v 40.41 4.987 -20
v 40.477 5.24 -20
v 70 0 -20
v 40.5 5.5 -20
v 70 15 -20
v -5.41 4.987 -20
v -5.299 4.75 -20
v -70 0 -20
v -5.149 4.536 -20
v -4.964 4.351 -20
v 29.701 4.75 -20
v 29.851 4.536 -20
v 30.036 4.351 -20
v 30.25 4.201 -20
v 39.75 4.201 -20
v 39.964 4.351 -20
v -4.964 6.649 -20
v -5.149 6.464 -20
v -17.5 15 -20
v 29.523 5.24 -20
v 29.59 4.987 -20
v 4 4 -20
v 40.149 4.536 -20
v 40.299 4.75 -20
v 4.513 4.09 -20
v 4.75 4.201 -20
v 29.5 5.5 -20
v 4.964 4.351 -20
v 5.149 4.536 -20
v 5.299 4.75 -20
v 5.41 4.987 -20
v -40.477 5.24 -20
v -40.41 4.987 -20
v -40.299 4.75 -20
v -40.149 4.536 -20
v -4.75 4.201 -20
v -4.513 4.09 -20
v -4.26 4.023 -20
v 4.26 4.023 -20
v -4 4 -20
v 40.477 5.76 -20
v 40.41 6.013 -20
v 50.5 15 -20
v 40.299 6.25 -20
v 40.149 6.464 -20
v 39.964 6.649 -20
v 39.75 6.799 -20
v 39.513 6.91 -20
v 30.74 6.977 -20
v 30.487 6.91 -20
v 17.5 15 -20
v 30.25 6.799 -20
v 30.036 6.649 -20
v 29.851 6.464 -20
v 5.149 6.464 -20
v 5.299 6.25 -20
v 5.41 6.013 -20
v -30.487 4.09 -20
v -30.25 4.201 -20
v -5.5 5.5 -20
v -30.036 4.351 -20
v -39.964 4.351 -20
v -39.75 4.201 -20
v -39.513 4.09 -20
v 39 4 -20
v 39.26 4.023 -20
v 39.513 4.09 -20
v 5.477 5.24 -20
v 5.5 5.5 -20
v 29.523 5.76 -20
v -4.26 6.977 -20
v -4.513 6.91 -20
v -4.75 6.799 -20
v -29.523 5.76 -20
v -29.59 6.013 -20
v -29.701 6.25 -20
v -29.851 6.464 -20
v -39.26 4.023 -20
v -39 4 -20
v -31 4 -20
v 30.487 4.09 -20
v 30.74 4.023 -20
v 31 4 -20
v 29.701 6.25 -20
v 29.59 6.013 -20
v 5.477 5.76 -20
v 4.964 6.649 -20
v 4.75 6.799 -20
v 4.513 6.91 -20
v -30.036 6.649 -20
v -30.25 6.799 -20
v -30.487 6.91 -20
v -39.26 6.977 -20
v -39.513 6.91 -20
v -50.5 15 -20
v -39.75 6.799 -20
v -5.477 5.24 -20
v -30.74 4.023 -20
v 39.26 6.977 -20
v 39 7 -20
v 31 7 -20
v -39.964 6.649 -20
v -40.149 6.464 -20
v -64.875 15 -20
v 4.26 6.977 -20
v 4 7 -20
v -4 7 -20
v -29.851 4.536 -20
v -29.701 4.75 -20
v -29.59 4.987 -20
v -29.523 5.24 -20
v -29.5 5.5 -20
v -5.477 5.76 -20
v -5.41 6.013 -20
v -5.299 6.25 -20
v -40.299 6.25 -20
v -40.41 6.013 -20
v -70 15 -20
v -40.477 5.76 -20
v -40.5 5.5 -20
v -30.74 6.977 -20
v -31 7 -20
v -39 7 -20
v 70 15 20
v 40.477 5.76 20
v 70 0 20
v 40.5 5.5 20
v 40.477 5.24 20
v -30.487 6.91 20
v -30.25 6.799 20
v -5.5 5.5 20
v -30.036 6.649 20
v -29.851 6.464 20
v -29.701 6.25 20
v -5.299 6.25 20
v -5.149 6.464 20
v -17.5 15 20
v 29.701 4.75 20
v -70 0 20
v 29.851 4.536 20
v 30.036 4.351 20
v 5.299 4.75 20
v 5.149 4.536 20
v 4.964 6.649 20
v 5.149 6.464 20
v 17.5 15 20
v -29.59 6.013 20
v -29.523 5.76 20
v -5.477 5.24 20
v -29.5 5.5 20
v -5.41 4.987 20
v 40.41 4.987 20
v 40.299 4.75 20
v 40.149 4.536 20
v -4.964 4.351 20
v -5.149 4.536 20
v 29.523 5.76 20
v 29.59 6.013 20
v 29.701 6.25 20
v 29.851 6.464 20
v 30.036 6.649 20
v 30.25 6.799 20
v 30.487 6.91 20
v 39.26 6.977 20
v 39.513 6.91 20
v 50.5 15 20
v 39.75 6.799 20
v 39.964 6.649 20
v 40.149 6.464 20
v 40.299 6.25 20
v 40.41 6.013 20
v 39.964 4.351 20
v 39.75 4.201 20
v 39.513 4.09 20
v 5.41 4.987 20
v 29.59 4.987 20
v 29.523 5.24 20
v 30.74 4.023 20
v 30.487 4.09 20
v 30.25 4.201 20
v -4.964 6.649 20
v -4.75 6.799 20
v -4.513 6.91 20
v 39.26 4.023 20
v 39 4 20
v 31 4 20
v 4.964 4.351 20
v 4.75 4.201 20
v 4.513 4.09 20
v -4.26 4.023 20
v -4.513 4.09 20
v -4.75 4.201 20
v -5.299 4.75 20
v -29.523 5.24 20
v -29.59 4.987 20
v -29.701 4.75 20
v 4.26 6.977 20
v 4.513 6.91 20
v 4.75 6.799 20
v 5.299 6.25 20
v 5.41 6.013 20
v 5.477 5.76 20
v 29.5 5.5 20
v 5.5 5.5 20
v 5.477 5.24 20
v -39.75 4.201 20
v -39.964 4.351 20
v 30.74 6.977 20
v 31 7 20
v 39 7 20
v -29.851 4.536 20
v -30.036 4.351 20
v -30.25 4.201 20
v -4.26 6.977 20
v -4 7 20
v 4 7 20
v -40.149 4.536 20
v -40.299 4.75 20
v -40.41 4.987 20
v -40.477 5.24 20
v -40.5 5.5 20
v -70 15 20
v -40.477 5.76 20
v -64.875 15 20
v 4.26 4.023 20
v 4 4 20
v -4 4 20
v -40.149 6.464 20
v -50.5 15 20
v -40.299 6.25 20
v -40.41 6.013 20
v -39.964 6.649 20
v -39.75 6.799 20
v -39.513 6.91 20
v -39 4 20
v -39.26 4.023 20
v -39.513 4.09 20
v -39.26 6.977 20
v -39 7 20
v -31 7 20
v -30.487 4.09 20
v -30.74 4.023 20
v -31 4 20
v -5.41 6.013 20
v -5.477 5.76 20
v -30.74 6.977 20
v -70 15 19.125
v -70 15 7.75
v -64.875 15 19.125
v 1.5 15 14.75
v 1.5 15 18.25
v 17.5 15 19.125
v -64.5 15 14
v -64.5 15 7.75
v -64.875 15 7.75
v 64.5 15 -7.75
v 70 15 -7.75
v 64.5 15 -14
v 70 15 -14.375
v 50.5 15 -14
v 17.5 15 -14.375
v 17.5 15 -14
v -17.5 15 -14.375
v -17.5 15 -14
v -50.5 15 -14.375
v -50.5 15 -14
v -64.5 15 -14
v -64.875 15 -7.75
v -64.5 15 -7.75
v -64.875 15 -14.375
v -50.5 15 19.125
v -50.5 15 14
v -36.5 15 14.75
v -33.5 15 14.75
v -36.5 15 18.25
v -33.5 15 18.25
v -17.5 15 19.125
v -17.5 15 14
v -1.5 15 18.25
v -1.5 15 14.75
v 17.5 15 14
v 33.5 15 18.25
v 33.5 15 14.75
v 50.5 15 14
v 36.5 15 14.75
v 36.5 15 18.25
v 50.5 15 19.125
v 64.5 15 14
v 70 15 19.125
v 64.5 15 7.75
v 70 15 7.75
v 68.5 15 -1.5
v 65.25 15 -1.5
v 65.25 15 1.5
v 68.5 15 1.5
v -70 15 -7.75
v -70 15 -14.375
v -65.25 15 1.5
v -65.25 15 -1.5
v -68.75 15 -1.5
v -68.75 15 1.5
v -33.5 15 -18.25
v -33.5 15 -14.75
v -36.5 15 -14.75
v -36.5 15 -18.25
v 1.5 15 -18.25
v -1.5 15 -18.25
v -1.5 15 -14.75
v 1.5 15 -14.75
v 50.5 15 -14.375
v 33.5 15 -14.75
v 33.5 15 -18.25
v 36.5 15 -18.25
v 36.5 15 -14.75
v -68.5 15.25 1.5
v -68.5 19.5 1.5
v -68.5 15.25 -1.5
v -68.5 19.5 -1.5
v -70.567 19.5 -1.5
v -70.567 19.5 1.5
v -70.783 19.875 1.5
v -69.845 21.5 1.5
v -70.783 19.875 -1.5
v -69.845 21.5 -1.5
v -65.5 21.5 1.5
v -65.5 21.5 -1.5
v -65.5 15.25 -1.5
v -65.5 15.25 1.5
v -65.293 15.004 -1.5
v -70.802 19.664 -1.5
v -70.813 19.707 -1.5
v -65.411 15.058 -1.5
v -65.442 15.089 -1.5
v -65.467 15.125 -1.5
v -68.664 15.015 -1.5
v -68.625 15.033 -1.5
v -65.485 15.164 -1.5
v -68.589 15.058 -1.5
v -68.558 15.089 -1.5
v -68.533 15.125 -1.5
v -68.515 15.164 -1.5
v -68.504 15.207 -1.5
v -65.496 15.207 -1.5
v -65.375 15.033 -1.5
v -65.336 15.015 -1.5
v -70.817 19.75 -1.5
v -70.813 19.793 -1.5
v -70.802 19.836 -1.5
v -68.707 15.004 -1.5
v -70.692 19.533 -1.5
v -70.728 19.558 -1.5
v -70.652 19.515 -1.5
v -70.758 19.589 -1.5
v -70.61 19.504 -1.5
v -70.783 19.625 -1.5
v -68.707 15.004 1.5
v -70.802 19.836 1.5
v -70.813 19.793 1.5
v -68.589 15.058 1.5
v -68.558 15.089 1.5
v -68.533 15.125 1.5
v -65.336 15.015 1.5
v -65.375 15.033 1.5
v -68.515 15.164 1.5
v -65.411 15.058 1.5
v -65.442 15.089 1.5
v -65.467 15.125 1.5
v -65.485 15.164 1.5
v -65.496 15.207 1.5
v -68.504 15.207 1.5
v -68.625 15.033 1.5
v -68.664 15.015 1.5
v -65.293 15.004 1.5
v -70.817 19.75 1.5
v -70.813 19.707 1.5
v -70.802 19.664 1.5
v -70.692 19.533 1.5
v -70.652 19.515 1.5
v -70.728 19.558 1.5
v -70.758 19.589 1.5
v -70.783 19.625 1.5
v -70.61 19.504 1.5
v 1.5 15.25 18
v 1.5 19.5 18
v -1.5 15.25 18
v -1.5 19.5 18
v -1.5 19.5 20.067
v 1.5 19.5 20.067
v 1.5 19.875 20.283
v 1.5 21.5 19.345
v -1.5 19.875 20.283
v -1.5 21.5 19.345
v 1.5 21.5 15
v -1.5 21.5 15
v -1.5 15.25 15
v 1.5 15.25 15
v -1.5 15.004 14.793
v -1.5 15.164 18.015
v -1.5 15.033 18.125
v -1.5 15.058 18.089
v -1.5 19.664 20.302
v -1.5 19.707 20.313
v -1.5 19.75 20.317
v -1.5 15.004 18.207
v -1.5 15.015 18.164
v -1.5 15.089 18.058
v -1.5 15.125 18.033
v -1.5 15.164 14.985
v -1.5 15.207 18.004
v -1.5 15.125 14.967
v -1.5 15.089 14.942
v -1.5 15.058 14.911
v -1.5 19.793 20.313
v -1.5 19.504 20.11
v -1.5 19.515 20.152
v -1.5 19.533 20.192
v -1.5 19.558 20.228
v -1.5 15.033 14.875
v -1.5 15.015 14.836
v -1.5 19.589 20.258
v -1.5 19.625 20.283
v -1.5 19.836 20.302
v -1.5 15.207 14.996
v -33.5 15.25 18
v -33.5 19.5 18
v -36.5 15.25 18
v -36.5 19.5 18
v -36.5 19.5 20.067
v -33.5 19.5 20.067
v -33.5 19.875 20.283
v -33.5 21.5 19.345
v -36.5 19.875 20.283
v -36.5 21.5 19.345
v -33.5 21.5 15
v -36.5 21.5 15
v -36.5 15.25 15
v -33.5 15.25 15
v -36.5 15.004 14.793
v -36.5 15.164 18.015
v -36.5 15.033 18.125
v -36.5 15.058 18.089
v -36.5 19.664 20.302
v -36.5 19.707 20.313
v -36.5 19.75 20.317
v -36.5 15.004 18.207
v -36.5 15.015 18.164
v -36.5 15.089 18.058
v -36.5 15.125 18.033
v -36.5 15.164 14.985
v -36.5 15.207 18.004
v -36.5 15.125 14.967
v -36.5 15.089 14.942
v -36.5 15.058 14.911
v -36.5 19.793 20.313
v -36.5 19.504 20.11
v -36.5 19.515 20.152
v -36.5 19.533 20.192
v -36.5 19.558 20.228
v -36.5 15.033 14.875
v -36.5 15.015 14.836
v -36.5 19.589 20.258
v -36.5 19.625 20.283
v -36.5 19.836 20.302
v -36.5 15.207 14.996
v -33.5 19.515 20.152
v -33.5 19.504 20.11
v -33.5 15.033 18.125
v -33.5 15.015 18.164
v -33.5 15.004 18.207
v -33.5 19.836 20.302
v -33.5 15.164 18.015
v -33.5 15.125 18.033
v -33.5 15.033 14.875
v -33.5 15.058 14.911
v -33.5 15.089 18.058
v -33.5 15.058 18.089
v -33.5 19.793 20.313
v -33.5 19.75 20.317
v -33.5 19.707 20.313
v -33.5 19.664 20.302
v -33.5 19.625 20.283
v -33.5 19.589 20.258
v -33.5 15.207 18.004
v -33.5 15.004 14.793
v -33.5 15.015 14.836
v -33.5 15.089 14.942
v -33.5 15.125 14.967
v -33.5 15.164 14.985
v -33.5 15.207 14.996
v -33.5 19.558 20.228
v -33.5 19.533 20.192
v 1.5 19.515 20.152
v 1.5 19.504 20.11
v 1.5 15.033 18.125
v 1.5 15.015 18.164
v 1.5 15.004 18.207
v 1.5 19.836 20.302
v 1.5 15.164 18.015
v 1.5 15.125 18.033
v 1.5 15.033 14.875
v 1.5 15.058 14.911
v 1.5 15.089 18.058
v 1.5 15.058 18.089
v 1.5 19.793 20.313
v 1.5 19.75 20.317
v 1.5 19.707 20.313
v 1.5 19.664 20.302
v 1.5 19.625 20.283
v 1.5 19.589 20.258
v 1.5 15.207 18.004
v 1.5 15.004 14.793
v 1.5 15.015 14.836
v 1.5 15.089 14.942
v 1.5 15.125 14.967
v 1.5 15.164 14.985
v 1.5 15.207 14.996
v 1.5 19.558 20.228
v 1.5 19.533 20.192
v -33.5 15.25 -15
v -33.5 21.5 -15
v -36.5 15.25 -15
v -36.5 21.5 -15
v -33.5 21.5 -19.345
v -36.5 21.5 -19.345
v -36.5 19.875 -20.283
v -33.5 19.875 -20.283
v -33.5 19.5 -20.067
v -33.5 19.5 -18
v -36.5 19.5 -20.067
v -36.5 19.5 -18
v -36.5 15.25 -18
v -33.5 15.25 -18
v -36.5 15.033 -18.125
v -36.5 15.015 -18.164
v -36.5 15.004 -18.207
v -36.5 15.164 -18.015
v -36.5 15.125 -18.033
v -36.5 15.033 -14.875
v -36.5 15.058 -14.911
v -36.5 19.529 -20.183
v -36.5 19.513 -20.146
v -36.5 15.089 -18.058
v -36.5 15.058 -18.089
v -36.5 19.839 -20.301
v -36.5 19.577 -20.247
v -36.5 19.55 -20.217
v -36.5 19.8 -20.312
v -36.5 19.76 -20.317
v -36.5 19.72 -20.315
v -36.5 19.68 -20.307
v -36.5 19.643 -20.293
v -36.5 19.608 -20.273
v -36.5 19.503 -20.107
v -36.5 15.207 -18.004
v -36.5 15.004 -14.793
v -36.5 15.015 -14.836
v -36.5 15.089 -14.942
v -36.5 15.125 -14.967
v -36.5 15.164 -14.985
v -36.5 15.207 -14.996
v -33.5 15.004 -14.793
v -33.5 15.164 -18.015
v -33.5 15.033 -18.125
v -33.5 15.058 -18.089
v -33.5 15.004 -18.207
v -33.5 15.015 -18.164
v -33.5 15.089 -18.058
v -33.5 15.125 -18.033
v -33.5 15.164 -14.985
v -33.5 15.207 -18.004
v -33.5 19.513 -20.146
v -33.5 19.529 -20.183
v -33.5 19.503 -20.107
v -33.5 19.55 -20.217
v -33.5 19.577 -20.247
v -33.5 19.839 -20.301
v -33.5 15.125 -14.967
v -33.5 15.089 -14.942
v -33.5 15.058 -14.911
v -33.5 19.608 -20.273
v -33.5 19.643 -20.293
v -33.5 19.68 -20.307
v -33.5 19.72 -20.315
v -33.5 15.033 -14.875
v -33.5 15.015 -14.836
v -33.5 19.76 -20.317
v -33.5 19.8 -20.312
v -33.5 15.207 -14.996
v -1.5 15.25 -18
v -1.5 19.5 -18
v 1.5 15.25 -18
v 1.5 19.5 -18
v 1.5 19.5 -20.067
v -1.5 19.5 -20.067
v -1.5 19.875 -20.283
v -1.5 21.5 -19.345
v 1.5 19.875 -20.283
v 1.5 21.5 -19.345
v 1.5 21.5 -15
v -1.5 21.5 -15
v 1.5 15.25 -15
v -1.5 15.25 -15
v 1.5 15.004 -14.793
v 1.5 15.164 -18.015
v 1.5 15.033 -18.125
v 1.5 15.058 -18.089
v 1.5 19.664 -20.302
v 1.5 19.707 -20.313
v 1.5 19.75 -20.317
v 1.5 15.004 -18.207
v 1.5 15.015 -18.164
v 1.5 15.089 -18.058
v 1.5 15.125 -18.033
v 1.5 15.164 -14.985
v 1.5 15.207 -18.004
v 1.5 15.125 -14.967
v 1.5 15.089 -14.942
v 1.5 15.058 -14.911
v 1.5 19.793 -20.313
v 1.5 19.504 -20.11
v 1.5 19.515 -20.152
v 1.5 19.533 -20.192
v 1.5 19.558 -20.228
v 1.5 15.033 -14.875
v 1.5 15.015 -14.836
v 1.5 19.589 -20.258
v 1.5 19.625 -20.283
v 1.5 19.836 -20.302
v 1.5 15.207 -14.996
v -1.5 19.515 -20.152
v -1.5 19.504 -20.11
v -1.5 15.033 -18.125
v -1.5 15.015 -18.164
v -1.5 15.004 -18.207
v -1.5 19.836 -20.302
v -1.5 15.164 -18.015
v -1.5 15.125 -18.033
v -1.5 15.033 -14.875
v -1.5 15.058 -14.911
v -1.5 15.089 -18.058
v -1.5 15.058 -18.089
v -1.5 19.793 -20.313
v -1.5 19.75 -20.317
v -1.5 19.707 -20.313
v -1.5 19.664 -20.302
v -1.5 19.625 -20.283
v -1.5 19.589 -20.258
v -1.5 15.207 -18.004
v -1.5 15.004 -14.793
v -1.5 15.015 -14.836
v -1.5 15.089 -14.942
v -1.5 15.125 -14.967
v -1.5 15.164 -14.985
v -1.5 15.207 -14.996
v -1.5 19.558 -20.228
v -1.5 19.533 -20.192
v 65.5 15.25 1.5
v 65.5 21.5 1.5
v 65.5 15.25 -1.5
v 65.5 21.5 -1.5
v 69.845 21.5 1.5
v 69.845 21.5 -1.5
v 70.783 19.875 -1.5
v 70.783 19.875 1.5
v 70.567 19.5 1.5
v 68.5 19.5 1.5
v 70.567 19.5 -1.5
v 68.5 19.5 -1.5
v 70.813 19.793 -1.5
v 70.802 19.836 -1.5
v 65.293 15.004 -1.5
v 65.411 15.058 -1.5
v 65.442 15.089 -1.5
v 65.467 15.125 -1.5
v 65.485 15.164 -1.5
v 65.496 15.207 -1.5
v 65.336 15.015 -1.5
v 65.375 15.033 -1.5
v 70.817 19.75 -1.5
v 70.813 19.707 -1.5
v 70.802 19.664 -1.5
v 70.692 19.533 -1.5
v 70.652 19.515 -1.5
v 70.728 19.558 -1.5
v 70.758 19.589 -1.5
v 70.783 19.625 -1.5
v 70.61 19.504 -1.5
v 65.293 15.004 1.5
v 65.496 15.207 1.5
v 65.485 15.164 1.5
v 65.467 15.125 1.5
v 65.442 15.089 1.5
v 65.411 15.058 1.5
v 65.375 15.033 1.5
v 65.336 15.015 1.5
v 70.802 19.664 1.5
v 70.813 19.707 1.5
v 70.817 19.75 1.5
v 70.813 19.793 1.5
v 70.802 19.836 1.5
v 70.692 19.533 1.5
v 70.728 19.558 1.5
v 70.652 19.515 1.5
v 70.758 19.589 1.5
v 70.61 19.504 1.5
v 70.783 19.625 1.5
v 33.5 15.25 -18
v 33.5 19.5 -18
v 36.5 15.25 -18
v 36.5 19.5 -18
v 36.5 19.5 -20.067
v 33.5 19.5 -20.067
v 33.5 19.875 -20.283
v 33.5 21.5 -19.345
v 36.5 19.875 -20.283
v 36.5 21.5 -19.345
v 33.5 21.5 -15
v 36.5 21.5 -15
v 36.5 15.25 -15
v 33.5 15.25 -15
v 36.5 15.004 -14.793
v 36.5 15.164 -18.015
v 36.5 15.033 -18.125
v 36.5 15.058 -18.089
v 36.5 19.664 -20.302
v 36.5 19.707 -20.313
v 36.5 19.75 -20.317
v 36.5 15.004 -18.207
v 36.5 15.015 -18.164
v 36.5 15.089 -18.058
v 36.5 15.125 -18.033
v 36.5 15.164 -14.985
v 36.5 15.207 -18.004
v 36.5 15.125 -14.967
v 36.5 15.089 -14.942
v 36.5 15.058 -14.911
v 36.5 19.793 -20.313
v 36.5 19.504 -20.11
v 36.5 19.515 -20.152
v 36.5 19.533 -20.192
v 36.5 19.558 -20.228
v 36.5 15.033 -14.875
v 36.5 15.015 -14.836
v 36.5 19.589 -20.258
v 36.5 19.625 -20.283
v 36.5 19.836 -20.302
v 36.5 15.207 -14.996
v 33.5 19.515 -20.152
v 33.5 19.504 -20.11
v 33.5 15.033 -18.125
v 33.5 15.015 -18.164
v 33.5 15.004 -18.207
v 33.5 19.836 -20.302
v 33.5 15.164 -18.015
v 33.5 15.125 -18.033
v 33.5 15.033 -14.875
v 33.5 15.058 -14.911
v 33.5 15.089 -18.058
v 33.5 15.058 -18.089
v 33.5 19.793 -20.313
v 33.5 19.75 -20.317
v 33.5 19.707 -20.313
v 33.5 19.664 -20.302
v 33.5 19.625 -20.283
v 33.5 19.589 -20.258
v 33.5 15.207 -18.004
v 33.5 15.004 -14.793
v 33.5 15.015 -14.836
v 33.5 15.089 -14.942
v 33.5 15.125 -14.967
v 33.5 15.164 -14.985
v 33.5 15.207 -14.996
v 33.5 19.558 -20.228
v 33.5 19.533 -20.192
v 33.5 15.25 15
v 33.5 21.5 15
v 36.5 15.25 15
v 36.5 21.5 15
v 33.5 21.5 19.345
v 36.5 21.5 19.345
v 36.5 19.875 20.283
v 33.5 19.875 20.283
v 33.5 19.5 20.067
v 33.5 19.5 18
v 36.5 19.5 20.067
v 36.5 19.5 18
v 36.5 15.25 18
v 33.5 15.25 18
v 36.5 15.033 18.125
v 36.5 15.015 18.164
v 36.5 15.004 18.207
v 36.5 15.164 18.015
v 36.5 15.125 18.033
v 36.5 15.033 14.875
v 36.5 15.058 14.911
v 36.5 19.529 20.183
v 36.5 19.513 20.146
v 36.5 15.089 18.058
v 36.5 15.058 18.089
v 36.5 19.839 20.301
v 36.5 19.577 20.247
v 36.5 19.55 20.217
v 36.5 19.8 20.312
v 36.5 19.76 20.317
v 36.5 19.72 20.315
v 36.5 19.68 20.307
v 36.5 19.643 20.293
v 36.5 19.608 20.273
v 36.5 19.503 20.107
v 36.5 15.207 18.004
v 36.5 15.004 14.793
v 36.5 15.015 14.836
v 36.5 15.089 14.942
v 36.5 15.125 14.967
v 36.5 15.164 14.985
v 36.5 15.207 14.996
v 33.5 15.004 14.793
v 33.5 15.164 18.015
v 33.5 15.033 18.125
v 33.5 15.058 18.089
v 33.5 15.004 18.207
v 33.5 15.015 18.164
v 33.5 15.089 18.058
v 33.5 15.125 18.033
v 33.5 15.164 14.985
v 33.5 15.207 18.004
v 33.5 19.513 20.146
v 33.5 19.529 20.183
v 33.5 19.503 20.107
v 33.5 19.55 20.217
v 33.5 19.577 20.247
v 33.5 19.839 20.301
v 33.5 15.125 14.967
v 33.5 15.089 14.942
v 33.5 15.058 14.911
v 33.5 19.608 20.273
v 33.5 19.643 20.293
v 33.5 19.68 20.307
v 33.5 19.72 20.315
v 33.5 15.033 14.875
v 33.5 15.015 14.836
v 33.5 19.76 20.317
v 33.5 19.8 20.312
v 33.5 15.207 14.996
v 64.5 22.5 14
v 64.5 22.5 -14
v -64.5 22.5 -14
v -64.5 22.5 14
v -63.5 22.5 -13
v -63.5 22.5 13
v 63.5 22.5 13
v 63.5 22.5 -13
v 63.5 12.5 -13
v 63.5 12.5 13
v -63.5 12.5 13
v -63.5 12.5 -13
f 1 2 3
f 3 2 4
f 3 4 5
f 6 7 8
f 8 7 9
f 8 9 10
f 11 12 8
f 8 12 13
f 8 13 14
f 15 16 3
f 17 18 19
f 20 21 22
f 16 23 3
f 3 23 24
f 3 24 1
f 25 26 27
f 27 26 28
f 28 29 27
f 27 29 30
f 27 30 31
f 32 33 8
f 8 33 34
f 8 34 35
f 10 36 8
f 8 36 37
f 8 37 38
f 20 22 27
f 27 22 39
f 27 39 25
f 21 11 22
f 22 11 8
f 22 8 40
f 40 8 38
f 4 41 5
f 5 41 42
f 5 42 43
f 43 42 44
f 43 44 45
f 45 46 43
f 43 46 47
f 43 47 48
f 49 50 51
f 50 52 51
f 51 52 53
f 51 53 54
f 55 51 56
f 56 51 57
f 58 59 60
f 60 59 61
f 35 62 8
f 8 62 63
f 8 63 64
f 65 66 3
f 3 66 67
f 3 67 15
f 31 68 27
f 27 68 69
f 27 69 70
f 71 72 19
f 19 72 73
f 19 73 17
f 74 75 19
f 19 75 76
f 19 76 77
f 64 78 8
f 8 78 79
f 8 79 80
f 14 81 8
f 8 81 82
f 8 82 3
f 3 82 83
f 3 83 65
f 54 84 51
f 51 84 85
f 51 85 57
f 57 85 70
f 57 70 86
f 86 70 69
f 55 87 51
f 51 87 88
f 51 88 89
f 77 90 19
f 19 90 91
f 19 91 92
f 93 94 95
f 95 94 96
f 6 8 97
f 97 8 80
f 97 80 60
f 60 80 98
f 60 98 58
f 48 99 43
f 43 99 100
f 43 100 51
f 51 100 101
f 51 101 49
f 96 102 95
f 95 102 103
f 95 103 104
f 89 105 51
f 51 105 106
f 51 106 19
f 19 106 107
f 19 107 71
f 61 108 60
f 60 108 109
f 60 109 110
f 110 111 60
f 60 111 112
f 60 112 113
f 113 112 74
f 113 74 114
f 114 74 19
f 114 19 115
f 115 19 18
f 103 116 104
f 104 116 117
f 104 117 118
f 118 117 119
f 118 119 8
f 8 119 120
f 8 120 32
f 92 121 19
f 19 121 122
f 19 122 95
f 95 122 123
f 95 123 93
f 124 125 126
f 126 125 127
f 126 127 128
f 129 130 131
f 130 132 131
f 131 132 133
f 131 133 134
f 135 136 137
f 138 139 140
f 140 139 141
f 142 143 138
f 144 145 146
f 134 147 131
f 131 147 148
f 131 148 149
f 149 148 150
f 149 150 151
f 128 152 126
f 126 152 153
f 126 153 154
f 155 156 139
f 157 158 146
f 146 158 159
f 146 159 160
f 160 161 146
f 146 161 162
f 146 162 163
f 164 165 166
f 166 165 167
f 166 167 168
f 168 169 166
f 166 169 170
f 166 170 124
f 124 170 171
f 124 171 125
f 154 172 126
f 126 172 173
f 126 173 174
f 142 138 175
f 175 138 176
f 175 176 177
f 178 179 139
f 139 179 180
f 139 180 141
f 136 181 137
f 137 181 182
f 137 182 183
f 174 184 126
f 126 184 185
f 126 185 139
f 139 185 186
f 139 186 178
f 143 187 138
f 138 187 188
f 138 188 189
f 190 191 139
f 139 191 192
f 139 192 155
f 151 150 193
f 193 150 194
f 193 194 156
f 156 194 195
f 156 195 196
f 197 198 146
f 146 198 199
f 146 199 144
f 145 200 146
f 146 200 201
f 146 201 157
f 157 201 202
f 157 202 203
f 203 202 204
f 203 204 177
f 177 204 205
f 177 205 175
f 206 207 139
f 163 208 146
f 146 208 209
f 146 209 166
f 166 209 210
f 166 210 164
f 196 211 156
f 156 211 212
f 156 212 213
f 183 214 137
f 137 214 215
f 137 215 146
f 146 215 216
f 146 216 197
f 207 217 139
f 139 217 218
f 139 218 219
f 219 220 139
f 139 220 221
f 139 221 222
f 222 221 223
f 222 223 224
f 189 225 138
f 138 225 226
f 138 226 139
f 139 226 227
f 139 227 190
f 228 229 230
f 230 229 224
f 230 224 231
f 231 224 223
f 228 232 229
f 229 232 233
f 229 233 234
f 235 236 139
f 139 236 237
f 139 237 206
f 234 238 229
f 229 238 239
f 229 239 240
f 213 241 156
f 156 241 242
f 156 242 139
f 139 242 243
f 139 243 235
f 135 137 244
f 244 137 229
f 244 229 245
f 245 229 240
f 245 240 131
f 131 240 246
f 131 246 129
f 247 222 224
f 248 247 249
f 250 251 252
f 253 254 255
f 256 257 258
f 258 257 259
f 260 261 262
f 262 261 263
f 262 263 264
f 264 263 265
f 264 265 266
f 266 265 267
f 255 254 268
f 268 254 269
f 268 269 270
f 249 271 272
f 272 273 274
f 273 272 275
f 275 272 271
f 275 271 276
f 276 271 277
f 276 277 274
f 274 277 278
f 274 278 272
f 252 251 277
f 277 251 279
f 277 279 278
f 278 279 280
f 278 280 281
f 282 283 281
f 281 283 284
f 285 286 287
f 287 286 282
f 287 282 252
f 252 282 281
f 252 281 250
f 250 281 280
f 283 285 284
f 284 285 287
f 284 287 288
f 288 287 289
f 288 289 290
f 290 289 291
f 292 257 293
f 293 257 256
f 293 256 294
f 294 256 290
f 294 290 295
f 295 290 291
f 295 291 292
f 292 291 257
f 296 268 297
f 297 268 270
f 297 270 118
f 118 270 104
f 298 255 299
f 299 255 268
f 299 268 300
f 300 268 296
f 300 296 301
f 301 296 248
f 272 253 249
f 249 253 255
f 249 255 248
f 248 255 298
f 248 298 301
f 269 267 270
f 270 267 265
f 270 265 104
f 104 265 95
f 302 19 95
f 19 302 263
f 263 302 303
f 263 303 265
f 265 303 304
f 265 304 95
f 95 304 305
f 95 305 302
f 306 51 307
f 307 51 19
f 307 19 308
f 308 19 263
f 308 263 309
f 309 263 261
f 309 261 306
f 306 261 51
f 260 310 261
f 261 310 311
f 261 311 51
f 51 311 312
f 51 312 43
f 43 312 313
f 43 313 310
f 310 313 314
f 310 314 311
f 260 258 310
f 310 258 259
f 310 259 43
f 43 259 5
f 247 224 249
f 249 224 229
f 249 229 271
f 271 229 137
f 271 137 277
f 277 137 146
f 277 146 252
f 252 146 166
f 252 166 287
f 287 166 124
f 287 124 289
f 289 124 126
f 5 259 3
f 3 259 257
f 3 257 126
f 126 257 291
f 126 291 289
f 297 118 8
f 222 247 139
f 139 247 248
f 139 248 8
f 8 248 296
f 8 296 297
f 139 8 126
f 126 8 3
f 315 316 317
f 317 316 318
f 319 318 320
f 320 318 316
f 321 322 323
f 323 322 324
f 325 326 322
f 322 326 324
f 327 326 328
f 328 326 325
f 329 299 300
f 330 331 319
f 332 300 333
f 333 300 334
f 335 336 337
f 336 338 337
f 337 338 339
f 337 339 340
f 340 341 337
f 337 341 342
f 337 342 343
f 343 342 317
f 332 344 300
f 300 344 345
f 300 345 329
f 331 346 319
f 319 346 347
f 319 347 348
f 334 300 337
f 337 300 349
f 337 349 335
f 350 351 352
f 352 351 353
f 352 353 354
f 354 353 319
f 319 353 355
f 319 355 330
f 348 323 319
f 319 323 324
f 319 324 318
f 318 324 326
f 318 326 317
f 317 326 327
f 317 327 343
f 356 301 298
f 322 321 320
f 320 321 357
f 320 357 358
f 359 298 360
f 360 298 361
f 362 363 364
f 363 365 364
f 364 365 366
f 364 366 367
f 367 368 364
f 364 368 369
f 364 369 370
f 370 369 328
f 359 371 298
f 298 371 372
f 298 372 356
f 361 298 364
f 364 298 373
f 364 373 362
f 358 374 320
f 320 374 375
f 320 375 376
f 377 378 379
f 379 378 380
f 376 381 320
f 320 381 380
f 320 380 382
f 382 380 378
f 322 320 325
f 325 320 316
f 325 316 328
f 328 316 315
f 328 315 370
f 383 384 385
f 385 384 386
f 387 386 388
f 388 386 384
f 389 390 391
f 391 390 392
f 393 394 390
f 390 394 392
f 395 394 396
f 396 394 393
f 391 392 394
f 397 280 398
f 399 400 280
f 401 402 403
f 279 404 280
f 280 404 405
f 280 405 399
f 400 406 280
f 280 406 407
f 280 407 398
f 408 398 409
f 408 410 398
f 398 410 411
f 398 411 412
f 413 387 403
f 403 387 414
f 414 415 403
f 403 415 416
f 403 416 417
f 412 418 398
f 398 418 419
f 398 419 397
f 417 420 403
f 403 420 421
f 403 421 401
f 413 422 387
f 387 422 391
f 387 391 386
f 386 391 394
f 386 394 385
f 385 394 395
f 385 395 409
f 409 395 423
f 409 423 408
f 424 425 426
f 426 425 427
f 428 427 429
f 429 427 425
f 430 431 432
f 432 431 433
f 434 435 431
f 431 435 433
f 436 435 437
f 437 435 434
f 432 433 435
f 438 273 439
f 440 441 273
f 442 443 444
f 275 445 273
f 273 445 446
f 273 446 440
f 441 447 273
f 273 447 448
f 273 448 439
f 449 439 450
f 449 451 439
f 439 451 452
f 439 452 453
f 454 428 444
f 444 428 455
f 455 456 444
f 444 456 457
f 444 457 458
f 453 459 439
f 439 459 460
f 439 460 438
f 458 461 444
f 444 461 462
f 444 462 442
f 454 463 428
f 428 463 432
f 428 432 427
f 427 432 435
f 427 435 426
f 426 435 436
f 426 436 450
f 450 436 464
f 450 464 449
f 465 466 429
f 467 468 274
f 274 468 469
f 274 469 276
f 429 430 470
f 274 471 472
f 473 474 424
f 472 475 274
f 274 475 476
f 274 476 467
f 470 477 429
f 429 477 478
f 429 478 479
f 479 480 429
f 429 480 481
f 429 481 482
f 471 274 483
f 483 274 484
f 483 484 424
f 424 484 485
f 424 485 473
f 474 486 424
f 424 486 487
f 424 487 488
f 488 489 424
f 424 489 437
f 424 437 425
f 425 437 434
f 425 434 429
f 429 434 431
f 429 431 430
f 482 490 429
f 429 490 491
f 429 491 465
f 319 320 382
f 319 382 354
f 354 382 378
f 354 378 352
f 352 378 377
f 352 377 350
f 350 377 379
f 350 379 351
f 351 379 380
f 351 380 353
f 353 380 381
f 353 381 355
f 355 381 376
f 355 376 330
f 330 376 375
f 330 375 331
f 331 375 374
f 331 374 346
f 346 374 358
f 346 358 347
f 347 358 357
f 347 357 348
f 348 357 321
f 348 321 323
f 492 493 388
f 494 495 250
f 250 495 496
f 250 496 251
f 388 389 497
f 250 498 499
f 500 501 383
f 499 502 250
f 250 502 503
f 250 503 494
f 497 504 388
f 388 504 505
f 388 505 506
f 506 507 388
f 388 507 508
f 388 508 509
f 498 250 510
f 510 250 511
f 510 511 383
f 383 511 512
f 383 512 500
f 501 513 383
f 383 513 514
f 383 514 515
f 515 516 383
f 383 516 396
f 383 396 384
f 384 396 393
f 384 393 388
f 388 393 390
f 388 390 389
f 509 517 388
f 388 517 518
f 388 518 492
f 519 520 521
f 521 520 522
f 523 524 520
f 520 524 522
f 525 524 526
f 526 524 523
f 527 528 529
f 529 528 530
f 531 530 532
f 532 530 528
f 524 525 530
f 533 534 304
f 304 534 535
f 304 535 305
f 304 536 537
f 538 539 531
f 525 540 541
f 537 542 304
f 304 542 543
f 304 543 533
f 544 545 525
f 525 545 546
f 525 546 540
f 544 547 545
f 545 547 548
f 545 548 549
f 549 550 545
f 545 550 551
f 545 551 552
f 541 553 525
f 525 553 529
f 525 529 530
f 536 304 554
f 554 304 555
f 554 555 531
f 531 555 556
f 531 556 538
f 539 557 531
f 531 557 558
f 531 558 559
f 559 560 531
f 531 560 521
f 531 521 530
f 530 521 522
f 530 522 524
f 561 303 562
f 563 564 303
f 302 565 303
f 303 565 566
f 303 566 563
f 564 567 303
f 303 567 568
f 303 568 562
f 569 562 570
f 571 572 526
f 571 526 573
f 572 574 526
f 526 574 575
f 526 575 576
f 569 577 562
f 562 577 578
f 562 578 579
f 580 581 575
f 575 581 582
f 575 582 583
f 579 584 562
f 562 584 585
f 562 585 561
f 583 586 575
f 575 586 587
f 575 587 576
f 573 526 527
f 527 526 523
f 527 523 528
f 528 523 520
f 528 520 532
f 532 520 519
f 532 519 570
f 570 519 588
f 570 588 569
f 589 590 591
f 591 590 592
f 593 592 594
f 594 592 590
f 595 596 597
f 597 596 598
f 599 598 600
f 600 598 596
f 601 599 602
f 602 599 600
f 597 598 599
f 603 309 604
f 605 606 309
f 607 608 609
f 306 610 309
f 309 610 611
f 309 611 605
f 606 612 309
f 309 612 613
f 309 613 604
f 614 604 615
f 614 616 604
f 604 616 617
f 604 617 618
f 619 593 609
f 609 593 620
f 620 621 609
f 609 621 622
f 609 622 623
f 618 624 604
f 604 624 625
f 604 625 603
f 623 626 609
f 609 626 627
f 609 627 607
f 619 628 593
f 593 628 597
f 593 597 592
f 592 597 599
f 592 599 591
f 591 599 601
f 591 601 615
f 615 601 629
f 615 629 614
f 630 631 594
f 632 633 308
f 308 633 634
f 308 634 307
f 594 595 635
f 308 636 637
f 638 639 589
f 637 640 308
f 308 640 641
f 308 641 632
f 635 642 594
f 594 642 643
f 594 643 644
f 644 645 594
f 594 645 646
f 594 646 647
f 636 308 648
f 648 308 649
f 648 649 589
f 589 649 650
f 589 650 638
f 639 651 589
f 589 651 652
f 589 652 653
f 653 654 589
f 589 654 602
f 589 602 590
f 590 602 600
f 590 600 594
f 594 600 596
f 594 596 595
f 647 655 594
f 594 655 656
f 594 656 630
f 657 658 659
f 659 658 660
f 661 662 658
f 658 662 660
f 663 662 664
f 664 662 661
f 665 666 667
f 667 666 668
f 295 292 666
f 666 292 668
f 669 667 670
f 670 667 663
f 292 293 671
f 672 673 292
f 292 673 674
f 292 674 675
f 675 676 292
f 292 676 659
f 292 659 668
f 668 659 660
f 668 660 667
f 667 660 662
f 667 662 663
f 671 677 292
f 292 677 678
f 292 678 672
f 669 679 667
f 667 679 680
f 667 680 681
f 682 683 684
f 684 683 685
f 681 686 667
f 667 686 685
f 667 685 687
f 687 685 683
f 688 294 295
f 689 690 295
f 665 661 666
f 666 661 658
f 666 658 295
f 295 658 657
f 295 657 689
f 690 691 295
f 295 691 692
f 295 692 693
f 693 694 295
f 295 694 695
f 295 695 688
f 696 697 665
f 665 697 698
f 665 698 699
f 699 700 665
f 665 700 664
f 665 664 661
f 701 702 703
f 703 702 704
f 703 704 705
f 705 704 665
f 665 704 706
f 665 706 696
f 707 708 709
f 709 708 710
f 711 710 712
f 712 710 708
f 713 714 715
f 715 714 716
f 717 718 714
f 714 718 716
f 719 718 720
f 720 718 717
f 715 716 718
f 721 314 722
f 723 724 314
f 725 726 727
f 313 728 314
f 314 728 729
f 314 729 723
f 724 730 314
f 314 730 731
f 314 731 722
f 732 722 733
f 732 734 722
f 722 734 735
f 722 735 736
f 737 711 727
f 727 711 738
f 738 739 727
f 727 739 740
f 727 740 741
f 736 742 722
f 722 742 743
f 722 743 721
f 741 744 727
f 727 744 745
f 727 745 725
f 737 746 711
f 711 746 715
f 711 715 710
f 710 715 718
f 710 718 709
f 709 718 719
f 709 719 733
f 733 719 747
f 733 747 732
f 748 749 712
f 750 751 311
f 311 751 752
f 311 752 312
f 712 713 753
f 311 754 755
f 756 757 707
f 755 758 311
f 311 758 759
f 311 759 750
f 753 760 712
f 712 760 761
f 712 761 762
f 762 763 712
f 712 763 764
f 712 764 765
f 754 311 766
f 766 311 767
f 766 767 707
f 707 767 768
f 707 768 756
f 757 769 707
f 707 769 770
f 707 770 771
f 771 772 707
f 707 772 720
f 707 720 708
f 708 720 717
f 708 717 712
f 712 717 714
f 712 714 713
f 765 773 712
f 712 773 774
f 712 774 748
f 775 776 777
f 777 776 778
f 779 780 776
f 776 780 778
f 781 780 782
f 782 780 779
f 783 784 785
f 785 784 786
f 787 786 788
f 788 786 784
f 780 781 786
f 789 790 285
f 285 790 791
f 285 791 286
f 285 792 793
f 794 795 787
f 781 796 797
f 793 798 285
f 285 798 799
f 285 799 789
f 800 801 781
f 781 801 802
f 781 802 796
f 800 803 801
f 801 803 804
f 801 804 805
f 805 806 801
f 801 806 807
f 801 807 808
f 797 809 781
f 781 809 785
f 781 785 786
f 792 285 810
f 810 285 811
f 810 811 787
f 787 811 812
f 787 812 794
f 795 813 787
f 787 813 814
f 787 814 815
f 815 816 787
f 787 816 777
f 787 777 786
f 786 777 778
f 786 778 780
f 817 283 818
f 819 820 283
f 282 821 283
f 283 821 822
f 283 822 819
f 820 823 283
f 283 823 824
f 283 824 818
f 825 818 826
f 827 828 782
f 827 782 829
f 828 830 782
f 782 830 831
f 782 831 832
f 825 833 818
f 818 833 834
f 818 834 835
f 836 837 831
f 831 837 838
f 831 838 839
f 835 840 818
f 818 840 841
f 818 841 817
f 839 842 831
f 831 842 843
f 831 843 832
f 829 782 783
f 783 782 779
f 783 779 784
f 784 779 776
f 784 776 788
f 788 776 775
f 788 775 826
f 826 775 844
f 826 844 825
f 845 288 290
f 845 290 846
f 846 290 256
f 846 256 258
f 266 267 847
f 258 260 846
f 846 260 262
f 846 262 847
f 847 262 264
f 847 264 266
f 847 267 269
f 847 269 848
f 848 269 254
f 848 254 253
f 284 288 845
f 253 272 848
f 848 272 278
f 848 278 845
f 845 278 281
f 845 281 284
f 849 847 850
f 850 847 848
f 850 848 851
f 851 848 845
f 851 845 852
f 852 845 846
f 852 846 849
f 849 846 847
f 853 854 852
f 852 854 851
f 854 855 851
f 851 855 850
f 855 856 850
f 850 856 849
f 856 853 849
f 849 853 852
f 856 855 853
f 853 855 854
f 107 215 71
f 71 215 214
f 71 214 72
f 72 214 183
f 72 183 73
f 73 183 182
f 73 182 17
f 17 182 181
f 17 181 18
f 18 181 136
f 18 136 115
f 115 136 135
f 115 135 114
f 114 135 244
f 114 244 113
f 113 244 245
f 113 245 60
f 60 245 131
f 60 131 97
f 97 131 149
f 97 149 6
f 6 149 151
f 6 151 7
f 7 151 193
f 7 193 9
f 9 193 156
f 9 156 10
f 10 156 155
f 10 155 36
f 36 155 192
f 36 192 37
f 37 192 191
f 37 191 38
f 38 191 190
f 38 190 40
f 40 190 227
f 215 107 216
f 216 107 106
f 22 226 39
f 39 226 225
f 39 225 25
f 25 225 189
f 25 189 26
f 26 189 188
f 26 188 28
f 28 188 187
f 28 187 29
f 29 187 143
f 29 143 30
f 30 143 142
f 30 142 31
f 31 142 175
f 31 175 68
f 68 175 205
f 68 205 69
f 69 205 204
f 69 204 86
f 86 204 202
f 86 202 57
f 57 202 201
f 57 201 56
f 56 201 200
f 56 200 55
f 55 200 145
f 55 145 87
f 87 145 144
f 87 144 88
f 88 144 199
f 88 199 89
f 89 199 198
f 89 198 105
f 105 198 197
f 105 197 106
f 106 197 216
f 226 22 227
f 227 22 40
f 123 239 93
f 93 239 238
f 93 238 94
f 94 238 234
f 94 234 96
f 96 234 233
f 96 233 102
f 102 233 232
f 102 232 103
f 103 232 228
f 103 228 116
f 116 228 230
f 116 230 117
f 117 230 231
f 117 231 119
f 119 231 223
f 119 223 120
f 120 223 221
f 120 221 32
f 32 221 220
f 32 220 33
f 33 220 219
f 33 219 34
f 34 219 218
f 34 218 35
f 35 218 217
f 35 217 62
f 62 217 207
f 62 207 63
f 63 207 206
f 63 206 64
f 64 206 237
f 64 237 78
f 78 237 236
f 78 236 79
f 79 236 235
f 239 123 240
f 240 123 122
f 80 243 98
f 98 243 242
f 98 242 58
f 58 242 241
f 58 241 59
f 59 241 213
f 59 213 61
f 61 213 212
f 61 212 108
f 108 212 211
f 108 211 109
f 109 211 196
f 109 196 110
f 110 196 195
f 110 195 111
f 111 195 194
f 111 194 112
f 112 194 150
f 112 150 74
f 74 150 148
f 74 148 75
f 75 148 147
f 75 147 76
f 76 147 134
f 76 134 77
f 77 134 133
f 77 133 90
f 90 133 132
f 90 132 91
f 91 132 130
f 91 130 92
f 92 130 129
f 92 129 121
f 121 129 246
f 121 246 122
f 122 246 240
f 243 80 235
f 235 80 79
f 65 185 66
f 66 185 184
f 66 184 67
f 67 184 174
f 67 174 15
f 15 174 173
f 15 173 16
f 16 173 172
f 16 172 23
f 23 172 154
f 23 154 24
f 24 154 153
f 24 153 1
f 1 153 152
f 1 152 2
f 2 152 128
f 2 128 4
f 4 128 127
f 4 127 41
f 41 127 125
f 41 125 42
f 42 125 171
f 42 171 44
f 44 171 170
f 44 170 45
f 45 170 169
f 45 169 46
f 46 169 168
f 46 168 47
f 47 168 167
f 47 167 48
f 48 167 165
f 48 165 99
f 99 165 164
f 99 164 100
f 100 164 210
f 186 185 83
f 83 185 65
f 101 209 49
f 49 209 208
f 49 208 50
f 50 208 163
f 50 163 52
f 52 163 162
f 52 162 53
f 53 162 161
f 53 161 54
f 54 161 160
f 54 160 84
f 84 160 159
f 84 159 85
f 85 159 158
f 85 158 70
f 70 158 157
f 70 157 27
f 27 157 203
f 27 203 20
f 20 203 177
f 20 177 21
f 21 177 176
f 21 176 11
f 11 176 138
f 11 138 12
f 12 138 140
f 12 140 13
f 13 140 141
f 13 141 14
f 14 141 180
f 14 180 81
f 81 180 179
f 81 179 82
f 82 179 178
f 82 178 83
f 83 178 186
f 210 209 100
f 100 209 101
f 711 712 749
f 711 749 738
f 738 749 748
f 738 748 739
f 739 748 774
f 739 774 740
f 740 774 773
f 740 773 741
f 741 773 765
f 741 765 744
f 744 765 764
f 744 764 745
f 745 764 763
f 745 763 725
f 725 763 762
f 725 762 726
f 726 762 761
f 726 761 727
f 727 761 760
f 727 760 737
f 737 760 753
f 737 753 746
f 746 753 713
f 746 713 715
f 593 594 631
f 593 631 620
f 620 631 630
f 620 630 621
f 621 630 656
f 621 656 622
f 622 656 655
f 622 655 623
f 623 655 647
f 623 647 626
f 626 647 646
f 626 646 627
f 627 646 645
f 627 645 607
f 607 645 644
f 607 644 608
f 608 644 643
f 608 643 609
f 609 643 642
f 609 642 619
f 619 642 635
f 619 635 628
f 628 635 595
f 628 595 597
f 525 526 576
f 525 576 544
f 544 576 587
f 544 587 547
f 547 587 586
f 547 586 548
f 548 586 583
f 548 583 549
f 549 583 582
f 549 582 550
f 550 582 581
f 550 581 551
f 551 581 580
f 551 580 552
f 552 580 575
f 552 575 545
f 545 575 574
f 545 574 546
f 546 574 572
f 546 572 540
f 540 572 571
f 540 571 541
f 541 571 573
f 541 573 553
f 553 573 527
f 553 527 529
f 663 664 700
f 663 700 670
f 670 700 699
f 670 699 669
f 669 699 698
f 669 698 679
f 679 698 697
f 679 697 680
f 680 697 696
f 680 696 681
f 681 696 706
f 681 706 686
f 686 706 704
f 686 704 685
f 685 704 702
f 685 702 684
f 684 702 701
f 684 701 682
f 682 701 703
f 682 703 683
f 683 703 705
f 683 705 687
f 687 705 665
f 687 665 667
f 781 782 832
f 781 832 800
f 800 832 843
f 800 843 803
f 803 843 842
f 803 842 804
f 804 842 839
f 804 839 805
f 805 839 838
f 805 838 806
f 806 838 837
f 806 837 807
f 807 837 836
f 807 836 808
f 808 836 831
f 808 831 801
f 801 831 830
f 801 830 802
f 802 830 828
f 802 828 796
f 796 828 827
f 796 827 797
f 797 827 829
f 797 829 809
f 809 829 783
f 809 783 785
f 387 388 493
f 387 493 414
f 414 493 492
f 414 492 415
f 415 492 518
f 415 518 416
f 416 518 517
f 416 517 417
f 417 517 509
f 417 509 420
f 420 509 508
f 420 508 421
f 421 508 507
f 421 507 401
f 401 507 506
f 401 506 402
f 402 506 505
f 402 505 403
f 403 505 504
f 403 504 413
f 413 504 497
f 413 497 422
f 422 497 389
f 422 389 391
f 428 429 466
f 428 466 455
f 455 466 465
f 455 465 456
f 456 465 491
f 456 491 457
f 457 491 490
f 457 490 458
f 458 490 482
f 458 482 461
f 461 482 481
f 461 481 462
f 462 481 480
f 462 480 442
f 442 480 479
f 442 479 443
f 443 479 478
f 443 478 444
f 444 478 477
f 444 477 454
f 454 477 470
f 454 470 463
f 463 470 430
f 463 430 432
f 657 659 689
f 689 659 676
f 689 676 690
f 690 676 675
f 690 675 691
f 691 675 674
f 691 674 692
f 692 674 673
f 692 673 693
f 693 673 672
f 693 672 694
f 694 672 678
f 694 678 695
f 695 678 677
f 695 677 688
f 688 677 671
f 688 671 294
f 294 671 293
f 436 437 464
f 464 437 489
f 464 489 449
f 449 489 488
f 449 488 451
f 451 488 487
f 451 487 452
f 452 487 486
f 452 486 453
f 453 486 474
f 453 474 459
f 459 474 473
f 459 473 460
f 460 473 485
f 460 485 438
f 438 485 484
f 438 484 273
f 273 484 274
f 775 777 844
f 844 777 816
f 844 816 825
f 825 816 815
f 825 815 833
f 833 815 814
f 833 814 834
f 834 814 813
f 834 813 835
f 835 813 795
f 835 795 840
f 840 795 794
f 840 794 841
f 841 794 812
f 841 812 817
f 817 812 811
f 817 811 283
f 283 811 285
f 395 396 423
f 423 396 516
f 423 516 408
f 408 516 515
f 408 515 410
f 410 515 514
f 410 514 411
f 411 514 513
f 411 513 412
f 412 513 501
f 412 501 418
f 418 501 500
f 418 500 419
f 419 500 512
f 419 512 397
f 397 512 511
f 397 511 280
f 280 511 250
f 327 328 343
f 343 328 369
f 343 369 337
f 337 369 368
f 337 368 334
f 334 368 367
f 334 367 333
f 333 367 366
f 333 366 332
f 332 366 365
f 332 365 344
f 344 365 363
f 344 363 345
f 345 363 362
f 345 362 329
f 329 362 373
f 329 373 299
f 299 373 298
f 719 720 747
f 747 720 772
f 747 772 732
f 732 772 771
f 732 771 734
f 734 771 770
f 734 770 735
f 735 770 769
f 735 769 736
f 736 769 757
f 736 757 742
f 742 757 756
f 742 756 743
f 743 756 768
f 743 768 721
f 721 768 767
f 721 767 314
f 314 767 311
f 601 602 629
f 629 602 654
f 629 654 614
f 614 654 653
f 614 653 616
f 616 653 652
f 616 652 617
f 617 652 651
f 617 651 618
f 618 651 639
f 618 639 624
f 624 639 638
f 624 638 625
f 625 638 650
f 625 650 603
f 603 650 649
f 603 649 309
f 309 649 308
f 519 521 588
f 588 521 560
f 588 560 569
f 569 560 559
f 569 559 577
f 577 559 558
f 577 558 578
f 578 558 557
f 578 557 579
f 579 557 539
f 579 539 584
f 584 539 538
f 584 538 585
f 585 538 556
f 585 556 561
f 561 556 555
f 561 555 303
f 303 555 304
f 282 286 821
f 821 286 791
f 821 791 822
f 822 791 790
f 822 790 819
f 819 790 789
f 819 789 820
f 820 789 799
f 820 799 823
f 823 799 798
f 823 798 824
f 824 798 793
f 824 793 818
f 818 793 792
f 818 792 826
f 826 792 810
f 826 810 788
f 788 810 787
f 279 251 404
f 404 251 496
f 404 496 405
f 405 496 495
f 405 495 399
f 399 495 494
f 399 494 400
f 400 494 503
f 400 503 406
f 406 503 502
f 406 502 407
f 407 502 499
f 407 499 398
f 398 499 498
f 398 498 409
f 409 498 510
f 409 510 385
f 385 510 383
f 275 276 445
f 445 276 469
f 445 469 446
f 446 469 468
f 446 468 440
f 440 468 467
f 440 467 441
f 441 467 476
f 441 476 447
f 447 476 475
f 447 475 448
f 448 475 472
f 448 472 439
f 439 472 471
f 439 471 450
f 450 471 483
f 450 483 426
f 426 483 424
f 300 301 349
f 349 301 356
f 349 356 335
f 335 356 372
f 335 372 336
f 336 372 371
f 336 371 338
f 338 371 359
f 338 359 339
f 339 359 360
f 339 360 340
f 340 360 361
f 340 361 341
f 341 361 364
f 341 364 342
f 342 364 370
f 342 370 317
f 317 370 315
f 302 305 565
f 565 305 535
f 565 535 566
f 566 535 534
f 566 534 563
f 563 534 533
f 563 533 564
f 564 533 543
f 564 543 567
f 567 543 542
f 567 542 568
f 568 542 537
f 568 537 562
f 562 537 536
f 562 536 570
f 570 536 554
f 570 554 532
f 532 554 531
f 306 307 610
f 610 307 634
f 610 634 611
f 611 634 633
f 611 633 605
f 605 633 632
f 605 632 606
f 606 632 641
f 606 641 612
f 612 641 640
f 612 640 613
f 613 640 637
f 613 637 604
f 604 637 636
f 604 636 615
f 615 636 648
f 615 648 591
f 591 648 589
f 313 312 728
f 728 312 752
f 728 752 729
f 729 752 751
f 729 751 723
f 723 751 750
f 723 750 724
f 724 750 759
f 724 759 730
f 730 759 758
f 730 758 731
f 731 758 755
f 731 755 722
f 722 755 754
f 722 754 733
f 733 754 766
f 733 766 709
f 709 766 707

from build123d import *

# Parameters (mm, degrees)
SKETCH1_W             = 140
SKETCH1_H             = 40
BOSS_EXTRUDE1_DEPTH   = 15
BOSS_EXTRUDE2_DEPTH   = 1.5
BOSS_EXTRUDE3_DEPTH   = 1.5
BOSS_EXTRUDE4_DEPTH   = 1.5
FILLET2_R             = 0.25
MIRROR10_COPY_1_DEPTH = 1.5
MIRROR11_COPY_1_DEPTH = 1.5
MIRROR11_COPY_2_DEPTH = 1.5
MIRROR11_COPY_3_DEPTH = 1.5
MIRROR11_COPY_4_DEPTH = 1.5
SKETCH2_W             = 129
SKETCH2_H             = 28
BOSS_EXTRUDE5_DEPTH   = 7.5
SKETCH8_W             = 127
SKETCH8_H             = 26
CUT_EXTRUDE1_DEPTH    = 10
CUT_EXTRUDE2_DEPTH    = 41.5
CUT_EXTRUDE3_DEPTH    = 41.5
FILLET3_R             = 0.25
FILLET4_R             = 0.25


with BuildPart() as part:
    # Sketch1 → Boss-Extrude1 (new body)
    with BuildSketch(Plane(origin=(0, 0, 0), x_dir=(1, 0, 0), z_dir=(0, 1, 0))):
        Rectangle(SKETCH1_W, SKETCH1_H)
    extrude(amount=BOSS_EXTRUDE1_DEPTH)

    # Sketch3 → Boss-Extrude2 (add, symmetric)
    with BuildSketch(Plane.XY):
        Polygon((-65.5, 15), (-65.5, 21.5), (-69.845299462, 21.5), (-71, 19.5), (-68.5, 19.5), (-68.5, 15), align=None)
    boss_extrude2 = extrude(amount=BOSS_EXTRUDE2_DEPTH, both=True)

    # Sketch6 → Boss-Extrude3 (add)
    with BuildSketch(Plane(origin=(0, 0, 0), x_dir=(0, 0, -1), z_dir=(1, 0, 0))):
        Polygon((-15, 15), (-15, 21.5), (-19.345299462, 21.5), (-20.5, 19.5), (-18, 19.5), (-18, 15), align=None)
    boss_extrude3 = extrude(amount=-BOSS_EXTRUDE3_DEPTH)

    # Sketch7 → Boss-Extrude4 (add, symmetric)
    with BuildSketch(Plane(origin=(-35, 0, 0), x_dir=(0, 0, -1), z_dir=(1, 0, 0))):
        Polygon((-15, 15), (-15, 21.5), (-19.345299462, 21.5), (-20.5, 19.5), (-18, 19.5), (-18, 15), align=None)
    boss_extrude4 = extrude(amount=BOSS_EXTRUDE4_DEPTH, both=True)

    # Fillet2
    fillet2_edges = [part.edges().sort_by_distance(p)[0] for p in [
        (-71, 19.5, 0),
    ]]
    fillet(fillet2_edges, radius=FILLET2_R)

    # Mirror9: Boss-Extrude3 across plane
    add(boss_extrude3.mirror(Plane(origin=(0, 0, 0), x_dir=(0, 0, 1), z_dir=(1, 0, 0))))

    # Mirror10: Boss-Extrude4, Boss-Extrude3 across plane
    add(boss_extrude4.mirror(Plane.XY))
    add(boss_extrude3.mirror(Plane.XY))

    # Mirror10 copy 1 sketch → Mirror10 copy 1 (add)
    with BuildSketch(Plane.ZY):
        Polygon((-15, 15), (-15, 21.5), (-19.345299462, 21.5), (-20.5, 19.5), (-18, 19.5), (-18, 15), align=None)
    extrude(amount=-MIRROR10_COPY_1_DEPTH)

    # Mirror11: Boss-Extrude2, Boss-Extrude4 across plane
    add(boss_extrude2.mirror(Plane(origin=(0, 0, 0), x_dir=(0, 0, 1), z_dir=(1, 0, 0))))
    add(boss_extrude4.mirror(Plane(origin=(0, 0, 0), x_dir=(0, 0, 1), z_dir=(1, 0, 0))))

    # Mirror11 copy 1 sketch → Mirror11 copy 1 (add, symmetric)
    with BuildSketch(Plane.ZY.offset(-35)):
        Polygon((-15, 15), (-15, 21.5), (-19.345299462, 21.5), (-20.5, 19.5), (-18, 19.5), (-18, 15), align=None)
    extrude(amount=MIRROR11_COPY_1_DEPTH, both=True)

    # Mirror11 copy 2 sketch → Mirror11 copy 2 (add)
    with BuildSketch(Plane.ZY):
        Polygon((-15, 15), (-15, 21.5), (-19.345299462, 21.5), (-20.5, 19.5), (-18, 19.5), (-18, 15), align=None)
    extrude(amount=-MIRROR11_COPY_2_DEPTH)

    # Mirror11 copy 3 sketch → Mirror11 copy 3 (add)
    with BuildSketch(Plane(origin=(0, 0, 0), x_dir=(0, 0, 1), z_dir=(1, 0, 0))):
        Polygon((-15, -15), (-15, -21.5), (-19.345299462, -21.5), (-20.5, -19.5), (-18, -19.5), (-18, -15), align=None)
    extrude(amount=-MIRROR11_COPY_3_DEPTH)

    # Mirror11 copy 4 sketch → Mirror11 copy 4 (add)
    with BuildSketch(Plane(origin=(0, 0, 0), x_dir=(0, 0, -1), z_dir=(-1, 0, 0))):
        Polygon((-15, -15), (-15, -21.5), (-19.345299462, -21.5), (-20.5, -19.5), (-18, -19.5), (-18, -15), align=None)
    extrude(amount=-MIRROR11_COPY_4_DEPTH)

    # Sketch2 → Boss-Extrude5 (add)
    with BuildSketch(Plane(origin=(0, 15, 0), x_dir=(1, 0, 0), z_dir=(0, 1, 0))):
        Rectangle(SKETCH2_W, SKETCH2_H)
    extrude(amount=BOSS_EXTRUDE5_DEPTH)

    # Sketch8 → Cut-Extrude1 (cut)
    with BuildSketch(Plane(origin=(0, 22.5, 0), x_dir=(1, 0, 0), z_dir=(0, 1, 0))):
        Rectangle(SKETCH8_W, SKETCH8_H)
    extrude(amount=-CUT_EXTRUDE1_DEPTH, mode=Mode.SUBTRACT)

    # Sketch9 → Cut-Extrude2 (cut, through all)
    with BuildSketch(Plane.XY.offset(20)):
        with BuildLine():
            Line((-4, 7), (4, 7))
            ThreePointArc((4, 7), (5.5, 5.5), (4, 4))
            Line((4, 4), (-4, 4))
            ThreePointArc((-4, 4), (-5.5, 5.5), (-4, 7))
        make_face()
    extrude(amount=-CUT_EXTRUDE2_DEPTH, mode=Mode.SUBTRACT)

    # Sketch10 → Cut-Extrude3 (cut, through all)
    with BuildSketch(Plane.XY.offset(20)):
        with BuildLine():
            Line((-39, 7), (-31, 7))
            ThreePointArc((-31, 7), (-29.5, 5.5), (-31, 4))
            Line((-31, 4), (-39, 4))
            ThreePointArc((-39, 4), (-40.5, 5.5), (-39, 7))
        make_face()
    cut_extrude3 = extrude(amount=-CUT_EXTRUDE3_DEPTH, mode=Mode.SUBTRACT)

    # Mirror12: Cut-Extrude3 across plane
    add(cut_extrude3.mirror(Plane(origin=(0, 0, 0), x_dir=(0, 0, 1), z_dir=(1, 0, 0))), mode=Mode.SUBTRACT)

    # Fillet3
    fillet3_edges = [part.edges().sort_by_distance(p)[0] for p in [
        (0, 19.5, -20.5),
        (71, 19.5, 0),
        (35, 19.5, -20.5),
        (35, 19.5, 20.5),
        (0, 19.5, 20.5),
        (-35, 19.5, 20.5),
        (-35, 19.5, -20.5),
    ]]
    fillet(fillet3_edges, radius=FILLET3_R)

    # Fillet4
    fillet4_edges = [part.edges().sort_by_distance(p)[0] for p in [
        (0, 15, -15),
        (0, 15, -18),
        (65.5, 15, 0),
        (35, 15, -15),
        (35, 15, -18),
        (-65.5, 15, 0),
        (-68.5, 15, 0),
        (35, 15, 18),
        (35, 15, 15),
        (0, 15, 15),
        (0, 15, 18),
        (-35, 15, 15),
        (-35, 15, 18),
        (-35, 15, -18),
        (-35, 15, -15),
    ]]
    fillet(fillet4_edges, radius=FILLET4_R)


solid = part.part
